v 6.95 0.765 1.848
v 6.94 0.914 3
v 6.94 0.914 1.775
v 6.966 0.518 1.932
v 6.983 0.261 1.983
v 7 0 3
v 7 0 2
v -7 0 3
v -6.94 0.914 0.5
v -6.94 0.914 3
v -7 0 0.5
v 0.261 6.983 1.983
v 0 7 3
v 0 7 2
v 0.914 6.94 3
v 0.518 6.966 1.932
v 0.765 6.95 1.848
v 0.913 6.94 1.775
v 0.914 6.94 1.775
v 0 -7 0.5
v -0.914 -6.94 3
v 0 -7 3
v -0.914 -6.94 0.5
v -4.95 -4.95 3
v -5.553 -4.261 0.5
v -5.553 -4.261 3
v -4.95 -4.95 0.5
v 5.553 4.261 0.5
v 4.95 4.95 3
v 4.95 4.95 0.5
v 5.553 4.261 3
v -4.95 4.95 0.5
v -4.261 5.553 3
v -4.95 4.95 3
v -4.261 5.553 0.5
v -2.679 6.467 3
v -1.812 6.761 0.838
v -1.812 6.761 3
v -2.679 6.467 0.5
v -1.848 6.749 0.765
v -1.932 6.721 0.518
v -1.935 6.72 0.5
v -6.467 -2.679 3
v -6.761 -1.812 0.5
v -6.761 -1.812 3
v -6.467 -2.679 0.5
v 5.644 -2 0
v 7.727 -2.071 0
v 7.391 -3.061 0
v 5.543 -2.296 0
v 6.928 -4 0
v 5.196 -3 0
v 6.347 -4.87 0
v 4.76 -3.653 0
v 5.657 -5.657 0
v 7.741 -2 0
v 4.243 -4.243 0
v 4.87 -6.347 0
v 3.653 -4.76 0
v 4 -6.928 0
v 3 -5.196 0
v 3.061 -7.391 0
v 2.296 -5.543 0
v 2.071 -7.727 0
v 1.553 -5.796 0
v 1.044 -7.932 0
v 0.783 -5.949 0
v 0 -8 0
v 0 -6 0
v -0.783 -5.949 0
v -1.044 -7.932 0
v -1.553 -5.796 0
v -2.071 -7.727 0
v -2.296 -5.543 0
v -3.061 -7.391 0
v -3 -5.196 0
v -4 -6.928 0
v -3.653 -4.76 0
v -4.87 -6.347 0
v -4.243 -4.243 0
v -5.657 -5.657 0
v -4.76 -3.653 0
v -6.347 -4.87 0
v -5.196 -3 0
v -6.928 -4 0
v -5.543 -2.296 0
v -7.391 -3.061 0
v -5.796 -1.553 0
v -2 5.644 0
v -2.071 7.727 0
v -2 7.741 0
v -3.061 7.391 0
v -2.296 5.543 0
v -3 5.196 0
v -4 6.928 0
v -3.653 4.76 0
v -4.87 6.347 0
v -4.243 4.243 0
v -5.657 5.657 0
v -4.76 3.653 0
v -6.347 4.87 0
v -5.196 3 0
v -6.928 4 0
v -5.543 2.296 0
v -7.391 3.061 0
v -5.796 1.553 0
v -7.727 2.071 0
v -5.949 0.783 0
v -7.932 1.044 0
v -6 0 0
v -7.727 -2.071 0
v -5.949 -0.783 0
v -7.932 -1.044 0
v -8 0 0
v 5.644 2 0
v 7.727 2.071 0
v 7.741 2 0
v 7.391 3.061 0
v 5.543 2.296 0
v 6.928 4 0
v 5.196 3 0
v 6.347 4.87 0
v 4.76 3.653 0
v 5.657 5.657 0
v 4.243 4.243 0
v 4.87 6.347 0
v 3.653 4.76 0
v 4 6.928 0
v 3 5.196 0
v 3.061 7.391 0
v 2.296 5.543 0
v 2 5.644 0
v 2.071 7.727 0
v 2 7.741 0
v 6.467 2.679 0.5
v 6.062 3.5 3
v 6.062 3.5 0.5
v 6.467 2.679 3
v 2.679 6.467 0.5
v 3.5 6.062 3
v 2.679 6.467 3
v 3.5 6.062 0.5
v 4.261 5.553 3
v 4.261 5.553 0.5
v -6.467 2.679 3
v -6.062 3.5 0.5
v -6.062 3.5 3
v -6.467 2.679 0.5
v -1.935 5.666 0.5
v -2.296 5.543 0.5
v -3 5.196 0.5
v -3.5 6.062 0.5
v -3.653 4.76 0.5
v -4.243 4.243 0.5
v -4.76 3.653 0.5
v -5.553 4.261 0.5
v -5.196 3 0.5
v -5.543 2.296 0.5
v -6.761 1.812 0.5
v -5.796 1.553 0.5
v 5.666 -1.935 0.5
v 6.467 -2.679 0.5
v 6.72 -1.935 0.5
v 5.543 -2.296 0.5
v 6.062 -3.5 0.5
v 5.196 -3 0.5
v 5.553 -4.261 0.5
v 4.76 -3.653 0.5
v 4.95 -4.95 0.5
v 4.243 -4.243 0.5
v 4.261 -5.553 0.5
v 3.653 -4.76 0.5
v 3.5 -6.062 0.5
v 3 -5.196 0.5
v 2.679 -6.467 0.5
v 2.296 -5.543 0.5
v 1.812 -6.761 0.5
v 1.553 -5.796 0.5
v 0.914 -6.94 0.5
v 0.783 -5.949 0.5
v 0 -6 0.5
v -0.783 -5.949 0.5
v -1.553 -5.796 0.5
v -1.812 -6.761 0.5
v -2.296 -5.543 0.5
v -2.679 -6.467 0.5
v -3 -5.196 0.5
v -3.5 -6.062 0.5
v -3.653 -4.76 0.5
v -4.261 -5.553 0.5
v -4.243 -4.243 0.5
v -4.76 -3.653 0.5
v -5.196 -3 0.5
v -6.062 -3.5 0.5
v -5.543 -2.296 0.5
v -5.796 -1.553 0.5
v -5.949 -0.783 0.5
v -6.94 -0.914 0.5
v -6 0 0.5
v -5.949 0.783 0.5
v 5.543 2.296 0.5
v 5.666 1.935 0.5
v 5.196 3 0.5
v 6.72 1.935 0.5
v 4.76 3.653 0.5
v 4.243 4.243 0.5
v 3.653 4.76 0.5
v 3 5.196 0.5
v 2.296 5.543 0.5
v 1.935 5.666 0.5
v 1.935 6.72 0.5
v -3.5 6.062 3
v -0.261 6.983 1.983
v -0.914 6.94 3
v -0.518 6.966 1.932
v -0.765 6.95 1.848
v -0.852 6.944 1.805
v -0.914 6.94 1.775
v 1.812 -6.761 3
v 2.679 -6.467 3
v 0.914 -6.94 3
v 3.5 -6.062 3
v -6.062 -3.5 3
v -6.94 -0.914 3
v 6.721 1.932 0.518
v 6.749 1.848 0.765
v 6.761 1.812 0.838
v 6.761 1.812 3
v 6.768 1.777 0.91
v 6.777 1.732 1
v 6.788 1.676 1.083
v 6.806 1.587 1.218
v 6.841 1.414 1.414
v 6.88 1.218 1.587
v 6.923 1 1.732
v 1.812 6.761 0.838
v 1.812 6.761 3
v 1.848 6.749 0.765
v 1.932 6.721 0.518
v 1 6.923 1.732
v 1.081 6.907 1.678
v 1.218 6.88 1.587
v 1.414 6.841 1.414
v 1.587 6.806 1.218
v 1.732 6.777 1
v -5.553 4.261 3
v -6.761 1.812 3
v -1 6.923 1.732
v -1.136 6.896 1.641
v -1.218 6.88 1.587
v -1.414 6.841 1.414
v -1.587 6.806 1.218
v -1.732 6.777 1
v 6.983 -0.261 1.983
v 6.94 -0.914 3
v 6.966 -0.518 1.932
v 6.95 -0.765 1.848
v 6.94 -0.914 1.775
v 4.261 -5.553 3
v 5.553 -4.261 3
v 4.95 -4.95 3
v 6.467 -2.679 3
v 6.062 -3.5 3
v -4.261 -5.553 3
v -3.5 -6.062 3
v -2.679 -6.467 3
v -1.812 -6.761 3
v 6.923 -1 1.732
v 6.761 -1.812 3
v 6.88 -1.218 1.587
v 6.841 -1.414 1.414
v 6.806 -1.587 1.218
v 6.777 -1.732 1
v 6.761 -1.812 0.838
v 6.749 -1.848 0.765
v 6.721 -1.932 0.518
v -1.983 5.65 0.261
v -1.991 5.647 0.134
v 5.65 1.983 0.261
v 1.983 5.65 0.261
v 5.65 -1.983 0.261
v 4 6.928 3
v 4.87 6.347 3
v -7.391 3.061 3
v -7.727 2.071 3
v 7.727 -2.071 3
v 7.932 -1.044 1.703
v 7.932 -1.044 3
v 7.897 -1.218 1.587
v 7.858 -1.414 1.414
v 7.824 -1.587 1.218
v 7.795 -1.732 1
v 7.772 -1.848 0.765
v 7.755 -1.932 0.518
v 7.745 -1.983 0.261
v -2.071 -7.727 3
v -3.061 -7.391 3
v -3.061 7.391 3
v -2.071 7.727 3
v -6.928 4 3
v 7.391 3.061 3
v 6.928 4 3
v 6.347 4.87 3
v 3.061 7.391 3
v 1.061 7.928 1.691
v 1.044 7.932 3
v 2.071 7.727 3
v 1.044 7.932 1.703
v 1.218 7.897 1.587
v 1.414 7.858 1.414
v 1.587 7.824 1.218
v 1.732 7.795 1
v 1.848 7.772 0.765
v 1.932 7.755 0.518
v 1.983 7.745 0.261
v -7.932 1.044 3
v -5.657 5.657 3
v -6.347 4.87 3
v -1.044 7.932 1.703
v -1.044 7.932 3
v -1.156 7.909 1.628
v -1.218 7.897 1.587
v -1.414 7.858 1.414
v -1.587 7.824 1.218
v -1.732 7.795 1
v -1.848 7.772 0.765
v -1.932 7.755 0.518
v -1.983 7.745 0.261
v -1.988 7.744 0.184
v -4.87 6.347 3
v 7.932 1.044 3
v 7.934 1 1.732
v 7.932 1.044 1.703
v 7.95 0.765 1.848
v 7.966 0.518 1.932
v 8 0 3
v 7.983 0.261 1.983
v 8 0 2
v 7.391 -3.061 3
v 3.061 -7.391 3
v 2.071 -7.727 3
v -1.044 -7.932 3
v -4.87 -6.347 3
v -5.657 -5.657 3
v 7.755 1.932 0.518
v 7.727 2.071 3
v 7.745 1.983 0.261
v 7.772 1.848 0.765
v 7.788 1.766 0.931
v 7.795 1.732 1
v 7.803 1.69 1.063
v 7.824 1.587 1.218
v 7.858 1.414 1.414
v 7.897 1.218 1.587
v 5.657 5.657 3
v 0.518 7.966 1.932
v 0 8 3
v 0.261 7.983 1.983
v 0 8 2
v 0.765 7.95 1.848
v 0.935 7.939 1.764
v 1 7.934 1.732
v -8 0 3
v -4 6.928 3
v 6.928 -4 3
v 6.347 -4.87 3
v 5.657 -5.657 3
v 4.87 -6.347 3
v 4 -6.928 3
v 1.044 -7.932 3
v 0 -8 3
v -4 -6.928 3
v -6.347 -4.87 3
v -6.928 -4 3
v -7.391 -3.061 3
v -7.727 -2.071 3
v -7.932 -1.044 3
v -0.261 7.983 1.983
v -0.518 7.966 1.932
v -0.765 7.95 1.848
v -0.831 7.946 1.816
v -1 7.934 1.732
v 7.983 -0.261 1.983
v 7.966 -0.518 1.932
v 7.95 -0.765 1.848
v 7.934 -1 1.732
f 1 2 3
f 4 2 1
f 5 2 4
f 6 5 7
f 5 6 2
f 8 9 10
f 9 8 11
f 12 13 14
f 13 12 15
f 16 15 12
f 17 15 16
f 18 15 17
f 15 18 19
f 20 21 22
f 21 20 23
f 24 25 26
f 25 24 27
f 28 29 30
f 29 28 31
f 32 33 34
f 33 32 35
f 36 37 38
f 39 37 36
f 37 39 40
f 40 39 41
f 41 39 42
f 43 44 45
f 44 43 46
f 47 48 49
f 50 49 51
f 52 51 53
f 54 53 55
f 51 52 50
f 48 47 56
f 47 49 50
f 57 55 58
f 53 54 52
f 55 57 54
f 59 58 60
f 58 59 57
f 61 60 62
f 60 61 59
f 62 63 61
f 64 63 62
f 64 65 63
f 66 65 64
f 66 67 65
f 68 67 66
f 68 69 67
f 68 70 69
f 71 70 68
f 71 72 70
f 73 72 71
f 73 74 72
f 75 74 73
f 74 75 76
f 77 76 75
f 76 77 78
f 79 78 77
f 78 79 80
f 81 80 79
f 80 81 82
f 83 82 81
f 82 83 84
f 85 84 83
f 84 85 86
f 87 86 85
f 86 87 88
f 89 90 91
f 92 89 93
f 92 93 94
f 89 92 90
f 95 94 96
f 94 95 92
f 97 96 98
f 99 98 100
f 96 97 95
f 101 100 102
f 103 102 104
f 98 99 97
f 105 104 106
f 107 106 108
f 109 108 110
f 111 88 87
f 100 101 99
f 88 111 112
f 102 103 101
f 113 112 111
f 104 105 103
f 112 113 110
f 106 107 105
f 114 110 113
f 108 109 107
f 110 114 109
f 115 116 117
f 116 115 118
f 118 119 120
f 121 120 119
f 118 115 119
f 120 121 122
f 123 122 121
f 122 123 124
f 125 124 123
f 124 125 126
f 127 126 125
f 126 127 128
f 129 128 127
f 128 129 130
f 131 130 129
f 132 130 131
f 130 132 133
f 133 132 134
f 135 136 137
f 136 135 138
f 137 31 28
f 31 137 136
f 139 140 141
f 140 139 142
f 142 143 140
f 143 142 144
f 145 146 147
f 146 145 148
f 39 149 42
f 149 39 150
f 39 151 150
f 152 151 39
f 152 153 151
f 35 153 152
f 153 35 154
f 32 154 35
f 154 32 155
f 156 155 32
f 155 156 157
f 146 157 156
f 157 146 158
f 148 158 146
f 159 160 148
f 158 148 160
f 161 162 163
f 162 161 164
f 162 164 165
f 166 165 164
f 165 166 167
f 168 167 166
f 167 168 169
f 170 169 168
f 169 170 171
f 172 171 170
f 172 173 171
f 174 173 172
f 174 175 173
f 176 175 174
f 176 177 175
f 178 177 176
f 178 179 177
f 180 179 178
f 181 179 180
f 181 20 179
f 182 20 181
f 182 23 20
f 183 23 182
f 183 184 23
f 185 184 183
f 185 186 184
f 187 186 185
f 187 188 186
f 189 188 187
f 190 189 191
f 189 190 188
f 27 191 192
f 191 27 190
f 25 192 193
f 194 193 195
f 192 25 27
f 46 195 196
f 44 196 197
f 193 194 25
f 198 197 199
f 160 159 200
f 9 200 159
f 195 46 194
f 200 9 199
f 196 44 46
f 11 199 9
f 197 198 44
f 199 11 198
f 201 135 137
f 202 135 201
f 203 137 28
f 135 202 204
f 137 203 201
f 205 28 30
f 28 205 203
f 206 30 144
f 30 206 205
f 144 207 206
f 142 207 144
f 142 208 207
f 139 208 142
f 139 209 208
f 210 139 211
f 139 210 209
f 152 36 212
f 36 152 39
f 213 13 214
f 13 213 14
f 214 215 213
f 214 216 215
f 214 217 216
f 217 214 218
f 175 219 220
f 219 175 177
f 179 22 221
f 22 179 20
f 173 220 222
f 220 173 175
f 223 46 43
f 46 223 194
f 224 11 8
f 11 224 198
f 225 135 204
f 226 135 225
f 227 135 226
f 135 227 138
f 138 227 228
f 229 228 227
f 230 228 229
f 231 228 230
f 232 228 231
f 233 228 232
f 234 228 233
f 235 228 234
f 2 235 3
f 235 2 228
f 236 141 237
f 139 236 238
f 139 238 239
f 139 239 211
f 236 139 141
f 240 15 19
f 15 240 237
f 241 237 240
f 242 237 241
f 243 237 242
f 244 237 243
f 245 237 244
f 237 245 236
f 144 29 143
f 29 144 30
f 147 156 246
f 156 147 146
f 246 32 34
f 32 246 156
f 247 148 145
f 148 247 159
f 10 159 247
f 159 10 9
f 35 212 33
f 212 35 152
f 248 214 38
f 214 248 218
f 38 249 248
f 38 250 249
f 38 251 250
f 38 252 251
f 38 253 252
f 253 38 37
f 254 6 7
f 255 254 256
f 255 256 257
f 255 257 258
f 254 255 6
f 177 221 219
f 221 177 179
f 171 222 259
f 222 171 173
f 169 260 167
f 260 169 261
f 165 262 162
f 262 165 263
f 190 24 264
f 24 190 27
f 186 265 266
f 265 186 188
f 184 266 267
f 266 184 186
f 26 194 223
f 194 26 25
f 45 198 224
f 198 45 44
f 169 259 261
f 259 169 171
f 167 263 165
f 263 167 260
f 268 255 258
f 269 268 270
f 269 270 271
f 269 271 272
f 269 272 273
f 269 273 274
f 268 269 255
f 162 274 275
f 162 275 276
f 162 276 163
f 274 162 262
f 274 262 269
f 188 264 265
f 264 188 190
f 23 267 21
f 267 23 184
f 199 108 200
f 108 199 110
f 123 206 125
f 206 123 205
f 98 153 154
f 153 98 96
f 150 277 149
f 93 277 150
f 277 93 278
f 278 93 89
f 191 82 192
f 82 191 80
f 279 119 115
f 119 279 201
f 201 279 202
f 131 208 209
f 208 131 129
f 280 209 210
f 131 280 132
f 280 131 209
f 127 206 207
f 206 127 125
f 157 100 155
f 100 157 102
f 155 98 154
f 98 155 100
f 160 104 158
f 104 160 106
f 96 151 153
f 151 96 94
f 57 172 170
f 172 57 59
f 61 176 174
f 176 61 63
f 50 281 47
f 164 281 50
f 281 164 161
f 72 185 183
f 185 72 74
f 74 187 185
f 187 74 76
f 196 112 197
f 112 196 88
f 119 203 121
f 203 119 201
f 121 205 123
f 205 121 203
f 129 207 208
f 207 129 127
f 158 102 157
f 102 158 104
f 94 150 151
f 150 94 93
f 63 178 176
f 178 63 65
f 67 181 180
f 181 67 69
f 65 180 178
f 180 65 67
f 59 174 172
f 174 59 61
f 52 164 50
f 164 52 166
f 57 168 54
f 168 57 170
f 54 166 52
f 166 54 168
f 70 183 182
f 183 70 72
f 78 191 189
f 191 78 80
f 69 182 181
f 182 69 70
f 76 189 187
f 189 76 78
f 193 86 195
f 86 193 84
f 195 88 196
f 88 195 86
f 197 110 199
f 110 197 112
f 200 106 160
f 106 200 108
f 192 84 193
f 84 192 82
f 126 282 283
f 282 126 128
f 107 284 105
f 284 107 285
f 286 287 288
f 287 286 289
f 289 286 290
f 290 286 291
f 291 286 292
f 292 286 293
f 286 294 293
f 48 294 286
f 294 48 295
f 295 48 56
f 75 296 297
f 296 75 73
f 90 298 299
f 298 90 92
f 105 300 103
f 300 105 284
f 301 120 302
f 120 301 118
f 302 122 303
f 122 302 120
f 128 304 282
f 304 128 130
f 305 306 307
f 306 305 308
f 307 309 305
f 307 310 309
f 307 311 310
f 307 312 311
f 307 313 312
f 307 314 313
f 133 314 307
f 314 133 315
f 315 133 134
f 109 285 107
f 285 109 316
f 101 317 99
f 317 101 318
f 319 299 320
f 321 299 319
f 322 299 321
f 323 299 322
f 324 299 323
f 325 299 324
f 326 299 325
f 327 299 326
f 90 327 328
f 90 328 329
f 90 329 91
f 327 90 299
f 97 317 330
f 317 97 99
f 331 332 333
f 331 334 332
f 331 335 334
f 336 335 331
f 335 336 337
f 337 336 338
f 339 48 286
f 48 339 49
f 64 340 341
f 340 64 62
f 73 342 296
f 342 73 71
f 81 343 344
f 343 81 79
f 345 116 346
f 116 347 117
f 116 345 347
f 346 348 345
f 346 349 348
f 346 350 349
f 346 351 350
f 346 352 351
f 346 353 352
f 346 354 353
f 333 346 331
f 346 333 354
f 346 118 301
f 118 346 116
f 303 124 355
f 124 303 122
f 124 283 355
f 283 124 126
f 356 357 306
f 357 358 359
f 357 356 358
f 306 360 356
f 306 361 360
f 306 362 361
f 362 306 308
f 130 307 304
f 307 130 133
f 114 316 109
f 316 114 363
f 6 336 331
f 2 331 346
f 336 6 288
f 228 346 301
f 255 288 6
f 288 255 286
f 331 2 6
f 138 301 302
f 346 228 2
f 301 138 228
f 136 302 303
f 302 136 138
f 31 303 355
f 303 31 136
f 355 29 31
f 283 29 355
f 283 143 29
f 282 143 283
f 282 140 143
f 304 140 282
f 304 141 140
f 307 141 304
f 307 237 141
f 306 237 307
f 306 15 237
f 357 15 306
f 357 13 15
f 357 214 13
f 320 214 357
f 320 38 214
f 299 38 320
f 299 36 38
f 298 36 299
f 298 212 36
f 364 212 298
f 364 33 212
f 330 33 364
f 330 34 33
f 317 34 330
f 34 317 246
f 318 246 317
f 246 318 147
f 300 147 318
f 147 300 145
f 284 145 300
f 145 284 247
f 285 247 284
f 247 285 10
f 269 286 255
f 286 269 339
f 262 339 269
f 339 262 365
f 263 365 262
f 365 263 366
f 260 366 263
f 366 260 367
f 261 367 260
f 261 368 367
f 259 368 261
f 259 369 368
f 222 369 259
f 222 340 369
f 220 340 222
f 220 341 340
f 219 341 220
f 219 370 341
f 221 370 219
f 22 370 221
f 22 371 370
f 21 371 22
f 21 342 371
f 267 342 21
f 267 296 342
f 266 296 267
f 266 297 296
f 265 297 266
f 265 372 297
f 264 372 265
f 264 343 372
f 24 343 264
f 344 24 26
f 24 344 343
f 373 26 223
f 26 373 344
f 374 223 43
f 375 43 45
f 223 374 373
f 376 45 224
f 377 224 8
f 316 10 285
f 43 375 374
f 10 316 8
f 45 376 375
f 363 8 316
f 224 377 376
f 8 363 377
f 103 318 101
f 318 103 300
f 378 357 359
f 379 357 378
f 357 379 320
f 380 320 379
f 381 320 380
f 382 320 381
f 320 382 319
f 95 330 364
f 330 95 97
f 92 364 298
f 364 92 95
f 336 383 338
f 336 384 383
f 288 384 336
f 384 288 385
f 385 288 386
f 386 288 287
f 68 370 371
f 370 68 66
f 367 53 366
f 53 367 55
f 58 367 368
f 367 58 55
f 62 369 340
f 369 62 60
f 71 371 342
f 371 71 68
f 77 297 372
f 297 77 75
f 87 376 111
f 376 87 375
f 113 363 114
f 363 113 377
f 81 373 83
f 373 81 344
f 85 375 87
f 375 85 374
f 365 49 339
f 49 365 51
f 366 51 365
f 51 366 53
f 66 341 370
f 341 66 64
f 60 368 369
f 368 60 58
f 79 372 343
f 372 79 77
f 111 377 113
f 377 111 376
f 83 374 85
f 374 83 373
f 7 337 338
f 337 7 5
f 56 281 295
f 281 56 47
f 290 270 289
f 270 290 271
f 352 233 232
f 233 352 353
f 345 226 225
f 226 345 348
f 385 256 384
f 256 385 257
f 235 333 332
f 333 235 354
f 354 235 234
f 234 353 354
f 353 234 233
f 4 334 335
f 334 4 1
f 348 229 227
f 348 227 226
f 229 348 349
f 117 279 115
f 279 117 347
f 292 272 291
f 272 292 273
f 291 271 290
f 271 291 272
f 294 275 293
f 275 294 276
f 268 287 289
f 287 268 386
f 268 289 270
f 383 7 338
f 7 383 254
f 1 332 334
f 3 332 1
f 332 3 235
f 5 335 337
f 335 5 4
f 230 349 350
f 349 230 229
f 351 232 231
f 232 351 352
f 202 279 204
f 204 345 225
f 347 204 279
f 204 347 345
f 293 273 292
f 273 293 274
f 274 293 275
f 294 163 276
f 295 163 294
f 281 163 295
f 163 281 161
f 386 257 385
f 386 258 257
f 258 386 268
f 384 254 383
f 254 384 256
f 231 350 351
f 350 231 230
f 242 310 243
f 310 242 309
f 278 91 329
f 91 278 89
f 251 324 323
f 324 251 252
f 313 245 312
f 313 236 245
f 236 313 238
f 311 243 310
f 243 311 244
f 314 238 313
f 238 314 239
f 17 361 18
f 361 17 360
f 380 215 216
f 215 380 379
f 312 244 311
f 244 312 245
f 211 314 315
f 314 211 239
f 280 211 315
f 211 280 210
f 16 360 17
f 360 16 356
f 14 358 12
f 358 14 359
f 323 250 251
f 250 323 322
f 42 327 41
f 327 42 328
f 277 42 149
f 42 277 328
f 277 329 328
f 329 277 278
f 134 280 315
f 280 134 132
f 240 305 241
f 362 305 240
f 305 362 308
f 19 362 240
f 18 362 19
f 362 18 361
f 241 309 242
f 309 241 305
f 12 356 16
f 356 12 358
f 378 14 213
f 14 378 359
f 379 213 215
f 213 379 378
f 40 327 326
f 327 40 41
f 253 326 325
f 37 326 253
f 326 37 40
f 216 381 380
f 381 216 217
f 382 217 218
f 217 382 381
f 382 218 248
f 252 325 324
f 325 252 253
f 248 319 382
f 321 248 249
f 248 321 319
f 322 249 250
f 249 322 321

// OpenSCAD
// file: ../build_environments.scad
// build_environments.scad: modules to build level sections
//

module pool(diameter=10.0, wall_height=2.0, step_width=3.0, connections=[])
{
    difference() {
        union() {
        difference() {
            cylinder(h=0.5,r1=diameter+step_width,r2=diameter+step_width,$fn=48);
            translate([0,0,-0.1])
                cylinder(h=0.7,r1=diameter,r2=diameter,$fn=48);
        }
        difference() {
            cylinder(h=wall_height,r1=diameter+step_width+1.0,r2=diameter+step_width+1.0,$fn=48);
            translate([0,0,-0.1])
                cylinder(h=wall_height+0.2,r1=diameter+step_width,r2=diameter+step_width,$fn=48);
        }
        }
    
        for (c = connections)
        {
            rotate([0,90,0]) {
                angle = atan2(c[1],c[0]);
                rotate([-angle,0,0]) {
                    cylinder(h=diameter+5.0,r1=c[2],r2=c[2],$fn=48);
                }
            }
        }
    }
}

module straight(length=10.0, width=2.0, dy1=0.0, dy2=0.0, dz=0.0)
{
    dims = [0, 0, 0, 0, 0, (dz/length)];
    matrix = [
        [ 1, dims[0], dims[1], 0 ],
        [ dims[2], 1, dims[4], 0 ],
        [ dims[5], dims[3], 1, 0 ],
        [ 0, 0, 0, 1 ]
    ];
    multmatrix(matrix)
    difference() {
        translate([dy1,0,0])
        union() {
            rotate([0,90,0]) {
                difference() {
                    cylinder(h=(length-dy1-dy2),r1=width+1.0,r2=width+1.0,$fn=24);
                    translate([0,0,-0.1])
                        cylinder(h=(length-dy1-dy2+0.2),r1=width,r2=width,$fn=24);
                }
                difference() {
                    cylinder(h=1.0,r1=width+2.0,r2=width+2.0,$fn=24);
                    translate([0,0,-0.1])
                        cylinder(h=1.2,r1=width,r2=width,$fn=24);
                }
                translate([0,0,(length-dy1-dy2)-1.0]) {
                    difference() {
                        cylinder(h=1.0,r1=width+2.0,r2=width+2.0,$fn=24);
                        translate([0,0,-0.1])
                            cylinder(h=1.2,r1=width,r2=width,$fn=24);
                    }
                }
            }
        }
        translate([0,0,-(2*width+4.0)/2])
            cube([3*length,3*length,2*width+4.0],center=true);
    }
}

module curve(p0=[0,0], center=[0,0], dir=1, angle=0.0, width=2.0)
{
    radius = sqrt((p0[0]-center[0])*(p0[0]-center[0]) + (p0[1]-center[1])*(p0[1]-center[1]));
    if (dir == 0) {
        difference() {
            rotate([0,0,-90])
            difference() {
                rotate_extrude(angle = angle, convexity = 10, $fn=32)
                    translate([radius, 0, 0])
                        circle(r = width+1.0,$fn=24);
                rotate([0,0,-1.0])
                    rotate_extrude(angle = angle+2.0, convexity = 10, $fn=32)
                        translate([radius, 0, 0])
                            circle(r = width,$fn=24);
            }
            translate([0,0,-(2*width+4.0)/2])
                cube([5*radius,5*radius,2*width+4.0],center=true);
        }
    }
    else {
        difference() {
            rotate([0,0,90])
            difference() {
                rotate_extrude(angle = -angle, convexity = 10, $fn=32)
                    translate([radius, 0, 0])
                        circle(r = width+1.0,$fn=24);
                rotate([0,0,1.0])
                    rotate_extrude(angle = -angle-2.0, convexity = 10, $fn=32)
                        translate([radius, 0, 0])
                            circle(r = width,$fn=24);
            }
            translate([0,0,-(2*width+4.0)/2])
                cube([5*radius,5*radius,2*width+4.0],center=true);
        }
    }

}

// test pool
//pool(diameter=12.0000, wall_height=3.0000, step_width=3.0000, connections=[[0.0000,-26.0000,2.0000], [23.6074,0.0000,2.0000]]);

// test straight, slope
//straight(length=26.0000, width=2.0000, dy1=11.8322, dy2=6.7082, dz=0.0000);
//straight(length=29.1549, width=12.0000, dy1=0.0000, dy2=0.0000, dz=-15.0000);

// test curve
//curve(p0=[23.6074, 0.0000], center=[23.6074, 5.0000], dir=0, angle=60.1011, width=2.0000);
//curve(p0=[33.6426, 12.4219], center=[37.9771, 9.9295], dir=1, angle=120.4627, width=2.0000);
// main file
use <../build_environments.scad>;
pool(diameter=6.0000, wall_height=3.0000, step_width=1.0000, connections=[[17.0000,0.0000,2.0000], [0.0000,16.0000,2.0000]]);
